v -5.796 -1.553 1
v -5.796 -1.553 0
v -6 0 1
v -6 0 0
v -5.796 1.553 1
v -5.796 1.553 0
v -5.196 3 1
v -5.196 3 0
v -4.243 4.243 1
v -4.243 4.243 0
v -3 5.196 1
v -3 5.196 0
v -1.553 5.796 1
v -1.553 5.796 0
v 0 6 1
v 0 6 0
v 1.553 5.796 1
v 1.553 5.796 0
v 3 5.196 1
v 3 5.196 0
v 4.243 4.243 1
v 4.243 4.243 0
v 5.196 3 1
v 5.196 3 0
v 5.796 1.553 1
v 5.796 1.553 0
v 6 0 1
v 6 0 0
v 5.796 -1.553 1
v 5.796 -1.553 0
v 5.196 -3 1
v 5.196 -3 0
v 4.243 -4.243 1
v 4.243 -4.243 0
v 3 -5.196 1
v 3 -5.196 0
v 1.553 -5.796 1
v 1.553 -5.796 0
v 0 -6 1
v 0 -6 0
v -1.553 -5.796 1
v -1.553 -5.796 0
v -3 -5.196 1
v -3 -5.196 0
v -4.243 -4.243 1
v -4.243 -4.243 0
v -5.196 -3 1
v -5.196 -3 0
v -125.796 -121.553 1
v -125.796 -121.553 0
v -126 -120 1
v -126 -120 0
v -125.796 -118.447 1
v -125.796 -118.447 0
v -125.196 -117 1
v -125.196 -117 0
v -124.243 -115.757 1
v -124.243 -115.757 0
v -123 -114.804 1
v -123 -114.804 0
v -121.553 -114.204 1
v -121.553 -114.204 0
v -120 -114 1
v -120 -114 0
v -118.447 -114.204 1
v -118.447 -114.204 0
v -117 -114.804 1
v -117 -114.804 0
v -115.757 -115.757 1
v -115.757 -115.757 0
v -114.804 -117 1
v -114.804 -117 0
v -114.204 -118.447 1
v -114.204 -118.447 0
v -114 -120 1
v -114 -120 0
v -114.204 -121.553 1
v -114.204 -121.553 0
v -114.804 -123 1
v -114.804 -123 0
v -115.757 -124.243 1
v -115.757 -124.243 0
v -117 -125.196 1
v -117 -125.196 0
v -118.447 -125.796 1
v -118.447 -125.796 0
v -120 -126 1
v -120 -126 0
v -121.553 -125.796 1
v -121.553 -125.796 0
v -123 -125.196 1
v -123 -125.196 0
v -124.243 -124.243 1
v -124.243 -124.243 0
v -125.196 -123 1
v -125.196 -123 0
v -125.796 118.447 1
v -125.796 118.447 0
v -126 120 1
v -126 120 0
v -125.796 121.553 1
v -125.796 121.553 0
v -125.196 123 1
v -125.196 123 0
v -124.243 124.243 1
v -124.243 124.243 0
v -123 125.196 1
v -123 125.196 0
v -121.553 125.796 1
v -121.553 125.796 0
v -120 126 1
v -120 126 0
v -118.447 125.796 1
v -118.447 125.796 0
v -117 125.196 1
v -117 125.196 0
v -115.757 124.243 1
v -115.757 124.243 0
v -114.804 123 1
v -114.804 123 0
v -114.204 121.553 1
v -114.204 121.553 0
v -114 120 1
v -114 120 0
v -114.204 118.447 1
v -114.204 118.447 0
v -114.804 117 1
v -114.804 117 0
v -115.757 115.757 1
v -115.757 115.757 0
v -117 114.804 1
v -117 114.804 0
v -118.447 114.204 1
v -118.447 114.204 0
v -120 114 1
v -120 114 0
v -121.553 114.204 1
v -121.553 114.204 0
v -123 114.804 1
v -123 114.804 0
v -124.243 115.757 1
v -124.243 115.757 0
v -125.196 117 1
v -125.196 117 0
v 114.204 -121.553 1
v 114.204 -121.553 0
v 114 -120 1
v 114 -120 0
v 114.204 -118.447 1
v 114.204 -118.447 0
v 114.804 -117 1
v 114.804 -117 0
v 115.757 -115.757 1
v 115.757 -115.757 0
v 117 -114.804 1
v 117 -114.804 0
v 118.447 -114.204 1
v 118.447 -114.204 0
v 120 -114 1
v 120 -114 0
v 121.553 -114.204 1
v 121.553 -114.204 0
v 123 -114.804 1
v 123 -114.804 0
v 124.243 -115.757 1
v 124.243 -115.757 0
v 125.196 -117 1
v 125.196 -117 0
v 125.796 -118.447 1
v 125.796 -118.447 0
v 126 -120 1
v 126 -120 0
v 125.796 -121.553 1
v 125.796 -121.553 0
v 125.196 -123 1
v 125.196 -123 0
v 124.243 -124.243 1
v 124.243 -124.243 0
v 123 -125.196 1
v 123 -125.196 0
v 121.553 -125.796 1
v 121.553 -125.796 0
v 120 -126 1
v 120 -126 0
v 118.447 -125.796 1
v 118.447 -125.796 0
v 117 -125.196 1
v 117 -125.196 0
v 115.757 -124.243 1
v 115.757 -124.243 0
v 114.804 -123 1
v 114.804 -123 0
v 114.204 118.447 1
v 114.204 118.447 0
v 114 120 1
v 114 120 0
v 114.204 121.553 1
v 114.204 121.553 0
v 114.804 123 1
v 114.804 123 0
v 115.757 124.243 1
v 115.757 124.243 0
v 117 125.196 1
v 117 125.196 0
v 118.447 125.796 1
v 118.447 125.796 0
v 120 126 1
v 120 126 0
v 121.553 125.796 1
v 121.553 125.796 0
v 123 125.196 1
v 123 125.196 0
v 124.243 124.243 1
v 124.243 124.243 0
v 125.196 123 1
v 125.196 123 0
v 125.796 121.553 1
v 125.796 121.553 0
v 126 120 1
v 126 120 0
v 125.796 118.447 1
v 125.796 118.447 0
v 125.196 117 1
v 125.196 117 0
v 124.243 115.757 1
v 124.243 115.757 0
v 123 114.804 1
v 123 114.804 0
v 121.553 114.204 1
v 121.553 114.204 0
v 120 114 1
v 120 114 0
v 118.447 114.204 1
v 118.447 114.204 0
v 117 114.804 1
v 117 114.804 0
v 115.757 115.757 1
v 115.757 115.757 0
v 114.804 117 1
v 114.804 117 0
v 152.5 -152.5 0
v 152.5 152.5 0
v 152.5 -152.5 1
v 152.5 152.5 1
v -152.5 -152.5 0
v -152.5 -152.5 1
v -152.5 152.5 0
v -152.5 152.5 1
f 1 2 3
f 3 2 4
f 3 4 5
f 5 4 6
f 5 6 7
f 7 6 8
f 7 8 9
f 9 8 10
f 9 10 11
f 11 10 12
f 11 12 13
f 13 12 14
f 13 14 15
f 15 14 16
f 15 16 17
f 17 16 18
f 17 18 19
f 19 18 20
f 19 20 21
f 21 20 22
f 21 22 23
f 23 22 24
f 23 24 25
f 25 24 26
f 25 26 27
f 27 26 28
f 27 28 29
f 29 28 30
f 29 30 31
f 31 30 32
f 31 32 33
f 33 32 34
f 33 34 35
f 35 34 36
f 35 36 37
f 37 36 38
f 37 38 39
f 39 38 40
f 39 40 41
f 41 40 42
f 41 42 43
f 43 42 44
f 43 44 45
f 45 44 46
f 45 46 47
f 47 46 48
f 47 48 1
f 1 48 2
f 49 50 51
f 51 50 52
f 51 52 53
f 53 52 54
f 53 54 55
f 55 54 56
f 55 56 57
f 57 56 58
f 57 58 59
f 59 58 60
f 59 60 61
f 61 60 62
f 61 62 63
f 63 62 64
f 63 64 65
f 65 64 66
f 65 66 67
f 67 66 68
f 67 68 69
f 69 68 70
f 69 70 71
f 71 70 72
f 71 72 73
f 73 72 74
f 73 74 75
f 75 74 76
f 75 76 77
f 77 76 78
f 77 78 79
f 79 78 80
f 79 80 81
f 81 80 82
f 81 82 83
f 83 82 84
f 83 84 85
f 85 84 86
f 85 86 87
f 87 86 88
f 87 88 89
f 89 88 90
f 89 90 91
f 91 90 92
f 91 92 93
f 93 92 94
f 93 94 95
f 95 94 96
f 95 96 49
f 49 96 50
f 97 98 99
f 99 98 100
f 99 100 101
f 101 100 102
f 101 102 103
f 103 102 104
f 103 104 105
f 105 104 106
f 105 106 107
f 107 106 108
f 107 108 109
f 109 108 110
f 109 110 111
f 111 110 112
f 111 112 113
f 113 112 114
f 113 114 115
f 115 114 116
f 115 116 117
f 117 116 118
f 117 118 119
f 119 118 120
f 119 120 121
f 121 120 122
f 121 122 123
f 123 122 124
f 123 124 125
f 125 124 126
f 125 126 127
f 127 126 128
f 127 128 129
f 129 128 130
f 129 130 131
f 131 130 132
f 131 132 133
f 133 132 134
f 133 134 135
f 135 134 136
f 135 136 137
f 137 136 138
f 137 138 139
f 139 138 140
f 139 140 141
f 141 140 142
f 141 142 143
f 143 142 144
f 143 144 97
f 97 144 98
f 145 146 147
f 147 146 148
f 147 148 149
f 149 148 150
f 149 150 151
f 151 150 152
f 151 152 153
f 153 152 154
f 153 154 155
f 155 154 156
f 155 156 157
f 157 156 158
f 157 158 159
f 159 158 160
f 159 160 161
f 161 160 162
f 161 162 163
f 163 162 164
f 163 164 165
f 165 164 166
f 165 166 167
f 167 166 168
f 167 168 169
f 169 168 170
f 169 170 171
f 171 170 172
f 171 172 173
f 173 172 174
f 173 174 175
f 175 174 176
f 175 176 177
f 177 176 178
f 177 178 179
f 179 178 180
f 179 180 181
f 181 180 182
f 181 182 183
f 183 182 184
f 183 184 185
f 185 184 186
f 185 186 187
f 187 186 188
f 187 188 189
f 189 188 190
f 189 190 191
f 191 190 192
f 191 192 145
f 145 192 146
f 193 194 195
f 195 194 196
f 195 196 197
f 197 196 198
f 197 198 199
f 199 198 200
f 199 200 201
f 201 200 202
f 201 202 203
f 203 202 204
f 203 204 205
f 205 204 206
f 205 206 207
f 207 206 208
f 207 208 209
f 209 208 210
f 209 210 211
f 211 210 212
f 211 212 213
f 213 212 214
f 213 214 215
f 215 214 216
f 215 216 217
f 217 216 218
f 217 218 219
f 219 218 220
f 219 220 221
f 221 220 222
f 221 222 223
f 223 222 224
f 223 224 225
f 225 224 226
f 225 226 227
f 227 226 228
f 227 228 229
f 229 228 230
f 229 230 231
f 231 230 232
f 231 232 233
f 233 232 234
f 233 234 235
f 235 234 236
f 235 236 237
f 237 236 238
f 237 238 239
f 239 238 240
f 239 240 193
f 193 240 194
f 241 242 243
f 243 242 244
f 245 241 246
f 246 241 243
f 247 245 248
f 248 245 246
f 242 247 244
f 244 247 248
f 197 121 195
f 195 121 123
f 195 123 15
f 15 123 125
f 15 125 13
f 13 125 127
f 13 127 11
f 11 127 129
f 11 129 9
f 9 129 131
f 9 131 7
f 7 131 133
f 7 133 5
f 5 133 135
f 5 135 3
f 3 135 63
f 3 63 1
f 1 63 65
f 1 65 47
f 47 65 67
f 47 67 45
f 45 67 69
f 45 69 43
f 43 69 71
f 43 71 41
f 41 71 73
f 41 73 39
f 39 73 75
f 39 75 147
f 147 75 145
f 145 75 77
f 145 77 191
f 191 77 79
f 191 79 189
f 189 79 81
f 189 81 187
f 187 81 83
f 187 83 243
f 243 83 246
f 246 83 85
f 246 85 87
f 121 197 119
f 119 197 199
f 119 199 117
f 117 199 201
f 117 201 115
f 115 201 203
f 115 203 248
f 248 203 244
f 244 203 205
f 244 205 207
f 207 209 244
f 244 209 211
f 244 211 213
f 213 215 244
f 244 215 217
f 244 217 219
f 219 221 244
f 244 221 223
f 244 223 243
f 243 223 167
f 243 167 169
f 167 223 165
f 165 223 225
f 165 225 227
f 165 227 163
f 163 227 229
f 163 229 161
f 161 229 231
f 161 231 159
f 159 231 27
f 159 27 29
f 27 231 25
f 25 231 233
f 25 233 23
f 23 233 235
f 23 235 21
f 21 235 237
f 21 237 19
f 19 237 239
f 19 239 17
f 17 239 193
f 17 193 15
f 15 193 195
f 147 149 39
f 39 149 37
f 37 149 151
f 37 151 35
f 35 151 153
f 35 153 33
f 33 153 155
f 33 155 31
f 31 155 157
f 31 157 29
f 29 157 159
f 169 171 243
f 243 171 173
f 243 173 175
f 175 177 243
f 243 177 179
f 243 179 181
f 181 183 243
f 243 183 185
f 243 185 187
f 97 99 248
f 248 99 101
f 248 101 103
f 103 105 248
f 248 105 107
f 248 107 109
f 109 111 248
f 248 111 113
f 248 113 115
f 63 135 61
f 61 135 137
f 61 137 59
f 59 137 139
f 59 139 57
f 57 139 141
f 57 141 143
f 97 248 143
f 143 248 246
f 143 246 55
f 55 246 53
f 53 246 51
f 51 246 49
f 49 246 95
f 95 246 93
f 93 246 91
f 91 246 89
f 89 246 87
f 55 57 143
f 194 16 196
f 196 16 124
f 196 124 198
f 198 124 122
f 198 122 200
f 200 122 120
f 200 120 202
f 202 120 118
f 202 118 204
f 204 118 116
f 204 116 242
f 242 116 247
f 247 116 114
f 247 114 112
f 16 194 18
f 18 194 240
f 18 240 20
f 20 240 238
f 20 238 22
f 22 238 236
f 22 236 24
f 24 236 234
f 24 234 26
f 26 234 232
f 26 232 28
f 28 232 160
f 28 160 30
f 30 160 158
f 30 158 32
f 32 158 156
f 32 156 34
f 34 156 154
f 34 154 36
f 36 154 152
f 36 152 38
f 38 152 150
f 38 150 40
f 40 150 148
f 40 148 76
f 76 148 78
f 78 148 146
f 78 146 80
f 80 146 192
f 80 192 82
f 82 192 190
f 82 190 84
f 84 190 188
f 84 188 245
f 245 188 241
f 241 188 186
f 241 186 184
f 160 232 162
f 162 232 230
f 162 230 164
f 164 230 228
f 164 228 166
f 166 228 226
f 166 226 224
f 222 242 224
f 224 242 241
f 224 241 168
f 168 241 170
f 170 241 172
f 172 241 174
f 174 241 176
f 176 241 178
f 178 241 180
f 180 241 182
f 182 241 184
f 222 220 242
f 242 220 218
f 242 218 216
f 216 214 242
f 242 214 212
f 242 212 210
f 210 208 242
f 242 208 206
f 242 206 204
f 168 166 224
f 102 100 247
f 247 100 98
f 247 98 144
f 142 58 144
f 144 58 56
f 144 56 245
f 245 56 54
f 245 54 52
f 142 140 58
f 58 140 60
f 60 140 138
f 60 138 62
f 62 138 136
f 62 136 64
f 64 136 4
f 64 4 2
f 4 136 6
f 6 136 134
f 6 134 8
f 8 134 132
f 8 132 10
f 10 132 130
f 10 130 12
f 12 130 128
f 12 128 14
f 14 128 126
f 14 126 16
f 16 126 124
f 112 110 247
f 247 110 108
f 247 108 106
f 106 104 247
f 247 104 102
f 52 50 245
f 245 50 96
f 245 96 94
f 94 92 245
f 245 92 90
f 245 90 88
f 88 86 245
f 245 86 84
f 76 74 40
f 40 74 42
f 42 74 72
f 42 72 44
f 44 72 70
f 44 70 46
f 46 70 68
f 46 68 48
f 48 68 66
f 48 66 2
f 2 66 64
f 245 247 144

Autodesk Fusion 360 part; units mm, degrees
sketch "Sketch2" plane through (0, 0, 0) normal (0, 0, 1) x (1, 0, 0)
  line L0 (152.5, -152.5) -> (-152.5, -152.5)
  line L1 (-152.5, -152.5) -> (-152.5, 152.5)
  line L2 (-152.5, 152.5) -> (152.5, 152.5)
  line L3 (152.5, 152.5) -> (152.5, -152.5)
  line L4 (120, -120) -> (-120, -120)
  line L5 (-120, -120) -> (-120, 120)
  line L6 (-120, 120) -> (120, 120)
  line L7 (120, 120) -> (120, -120)
  line L8 (120, -120) -> (-120, 120) construction
  line L9 (-120, -120) -> (120, 120) construction
  circle A0 centre (120, 120) radius 6
  circle A1 centre (-120, 120) radius 6
  circle A2 centre (-120, -120) radius 6
  circle A3 centre (120, -120) radius 6
  circle A4 centre (0, 0) radius 6
  dimension "d6" = 305
  dimension "d7" = 305
  dimension "d8" = 240
  dimension "d9" = 240
  dimension "d10" = 12
  dimension "d12" = 360
  dimension "d15" = 12
extrude "Extrude1" add sketch "Sketch2" along normal blind 1 contours L0 L1 L2 L3 | L4 L5 L6 L7 A0 A1 A2 A3
